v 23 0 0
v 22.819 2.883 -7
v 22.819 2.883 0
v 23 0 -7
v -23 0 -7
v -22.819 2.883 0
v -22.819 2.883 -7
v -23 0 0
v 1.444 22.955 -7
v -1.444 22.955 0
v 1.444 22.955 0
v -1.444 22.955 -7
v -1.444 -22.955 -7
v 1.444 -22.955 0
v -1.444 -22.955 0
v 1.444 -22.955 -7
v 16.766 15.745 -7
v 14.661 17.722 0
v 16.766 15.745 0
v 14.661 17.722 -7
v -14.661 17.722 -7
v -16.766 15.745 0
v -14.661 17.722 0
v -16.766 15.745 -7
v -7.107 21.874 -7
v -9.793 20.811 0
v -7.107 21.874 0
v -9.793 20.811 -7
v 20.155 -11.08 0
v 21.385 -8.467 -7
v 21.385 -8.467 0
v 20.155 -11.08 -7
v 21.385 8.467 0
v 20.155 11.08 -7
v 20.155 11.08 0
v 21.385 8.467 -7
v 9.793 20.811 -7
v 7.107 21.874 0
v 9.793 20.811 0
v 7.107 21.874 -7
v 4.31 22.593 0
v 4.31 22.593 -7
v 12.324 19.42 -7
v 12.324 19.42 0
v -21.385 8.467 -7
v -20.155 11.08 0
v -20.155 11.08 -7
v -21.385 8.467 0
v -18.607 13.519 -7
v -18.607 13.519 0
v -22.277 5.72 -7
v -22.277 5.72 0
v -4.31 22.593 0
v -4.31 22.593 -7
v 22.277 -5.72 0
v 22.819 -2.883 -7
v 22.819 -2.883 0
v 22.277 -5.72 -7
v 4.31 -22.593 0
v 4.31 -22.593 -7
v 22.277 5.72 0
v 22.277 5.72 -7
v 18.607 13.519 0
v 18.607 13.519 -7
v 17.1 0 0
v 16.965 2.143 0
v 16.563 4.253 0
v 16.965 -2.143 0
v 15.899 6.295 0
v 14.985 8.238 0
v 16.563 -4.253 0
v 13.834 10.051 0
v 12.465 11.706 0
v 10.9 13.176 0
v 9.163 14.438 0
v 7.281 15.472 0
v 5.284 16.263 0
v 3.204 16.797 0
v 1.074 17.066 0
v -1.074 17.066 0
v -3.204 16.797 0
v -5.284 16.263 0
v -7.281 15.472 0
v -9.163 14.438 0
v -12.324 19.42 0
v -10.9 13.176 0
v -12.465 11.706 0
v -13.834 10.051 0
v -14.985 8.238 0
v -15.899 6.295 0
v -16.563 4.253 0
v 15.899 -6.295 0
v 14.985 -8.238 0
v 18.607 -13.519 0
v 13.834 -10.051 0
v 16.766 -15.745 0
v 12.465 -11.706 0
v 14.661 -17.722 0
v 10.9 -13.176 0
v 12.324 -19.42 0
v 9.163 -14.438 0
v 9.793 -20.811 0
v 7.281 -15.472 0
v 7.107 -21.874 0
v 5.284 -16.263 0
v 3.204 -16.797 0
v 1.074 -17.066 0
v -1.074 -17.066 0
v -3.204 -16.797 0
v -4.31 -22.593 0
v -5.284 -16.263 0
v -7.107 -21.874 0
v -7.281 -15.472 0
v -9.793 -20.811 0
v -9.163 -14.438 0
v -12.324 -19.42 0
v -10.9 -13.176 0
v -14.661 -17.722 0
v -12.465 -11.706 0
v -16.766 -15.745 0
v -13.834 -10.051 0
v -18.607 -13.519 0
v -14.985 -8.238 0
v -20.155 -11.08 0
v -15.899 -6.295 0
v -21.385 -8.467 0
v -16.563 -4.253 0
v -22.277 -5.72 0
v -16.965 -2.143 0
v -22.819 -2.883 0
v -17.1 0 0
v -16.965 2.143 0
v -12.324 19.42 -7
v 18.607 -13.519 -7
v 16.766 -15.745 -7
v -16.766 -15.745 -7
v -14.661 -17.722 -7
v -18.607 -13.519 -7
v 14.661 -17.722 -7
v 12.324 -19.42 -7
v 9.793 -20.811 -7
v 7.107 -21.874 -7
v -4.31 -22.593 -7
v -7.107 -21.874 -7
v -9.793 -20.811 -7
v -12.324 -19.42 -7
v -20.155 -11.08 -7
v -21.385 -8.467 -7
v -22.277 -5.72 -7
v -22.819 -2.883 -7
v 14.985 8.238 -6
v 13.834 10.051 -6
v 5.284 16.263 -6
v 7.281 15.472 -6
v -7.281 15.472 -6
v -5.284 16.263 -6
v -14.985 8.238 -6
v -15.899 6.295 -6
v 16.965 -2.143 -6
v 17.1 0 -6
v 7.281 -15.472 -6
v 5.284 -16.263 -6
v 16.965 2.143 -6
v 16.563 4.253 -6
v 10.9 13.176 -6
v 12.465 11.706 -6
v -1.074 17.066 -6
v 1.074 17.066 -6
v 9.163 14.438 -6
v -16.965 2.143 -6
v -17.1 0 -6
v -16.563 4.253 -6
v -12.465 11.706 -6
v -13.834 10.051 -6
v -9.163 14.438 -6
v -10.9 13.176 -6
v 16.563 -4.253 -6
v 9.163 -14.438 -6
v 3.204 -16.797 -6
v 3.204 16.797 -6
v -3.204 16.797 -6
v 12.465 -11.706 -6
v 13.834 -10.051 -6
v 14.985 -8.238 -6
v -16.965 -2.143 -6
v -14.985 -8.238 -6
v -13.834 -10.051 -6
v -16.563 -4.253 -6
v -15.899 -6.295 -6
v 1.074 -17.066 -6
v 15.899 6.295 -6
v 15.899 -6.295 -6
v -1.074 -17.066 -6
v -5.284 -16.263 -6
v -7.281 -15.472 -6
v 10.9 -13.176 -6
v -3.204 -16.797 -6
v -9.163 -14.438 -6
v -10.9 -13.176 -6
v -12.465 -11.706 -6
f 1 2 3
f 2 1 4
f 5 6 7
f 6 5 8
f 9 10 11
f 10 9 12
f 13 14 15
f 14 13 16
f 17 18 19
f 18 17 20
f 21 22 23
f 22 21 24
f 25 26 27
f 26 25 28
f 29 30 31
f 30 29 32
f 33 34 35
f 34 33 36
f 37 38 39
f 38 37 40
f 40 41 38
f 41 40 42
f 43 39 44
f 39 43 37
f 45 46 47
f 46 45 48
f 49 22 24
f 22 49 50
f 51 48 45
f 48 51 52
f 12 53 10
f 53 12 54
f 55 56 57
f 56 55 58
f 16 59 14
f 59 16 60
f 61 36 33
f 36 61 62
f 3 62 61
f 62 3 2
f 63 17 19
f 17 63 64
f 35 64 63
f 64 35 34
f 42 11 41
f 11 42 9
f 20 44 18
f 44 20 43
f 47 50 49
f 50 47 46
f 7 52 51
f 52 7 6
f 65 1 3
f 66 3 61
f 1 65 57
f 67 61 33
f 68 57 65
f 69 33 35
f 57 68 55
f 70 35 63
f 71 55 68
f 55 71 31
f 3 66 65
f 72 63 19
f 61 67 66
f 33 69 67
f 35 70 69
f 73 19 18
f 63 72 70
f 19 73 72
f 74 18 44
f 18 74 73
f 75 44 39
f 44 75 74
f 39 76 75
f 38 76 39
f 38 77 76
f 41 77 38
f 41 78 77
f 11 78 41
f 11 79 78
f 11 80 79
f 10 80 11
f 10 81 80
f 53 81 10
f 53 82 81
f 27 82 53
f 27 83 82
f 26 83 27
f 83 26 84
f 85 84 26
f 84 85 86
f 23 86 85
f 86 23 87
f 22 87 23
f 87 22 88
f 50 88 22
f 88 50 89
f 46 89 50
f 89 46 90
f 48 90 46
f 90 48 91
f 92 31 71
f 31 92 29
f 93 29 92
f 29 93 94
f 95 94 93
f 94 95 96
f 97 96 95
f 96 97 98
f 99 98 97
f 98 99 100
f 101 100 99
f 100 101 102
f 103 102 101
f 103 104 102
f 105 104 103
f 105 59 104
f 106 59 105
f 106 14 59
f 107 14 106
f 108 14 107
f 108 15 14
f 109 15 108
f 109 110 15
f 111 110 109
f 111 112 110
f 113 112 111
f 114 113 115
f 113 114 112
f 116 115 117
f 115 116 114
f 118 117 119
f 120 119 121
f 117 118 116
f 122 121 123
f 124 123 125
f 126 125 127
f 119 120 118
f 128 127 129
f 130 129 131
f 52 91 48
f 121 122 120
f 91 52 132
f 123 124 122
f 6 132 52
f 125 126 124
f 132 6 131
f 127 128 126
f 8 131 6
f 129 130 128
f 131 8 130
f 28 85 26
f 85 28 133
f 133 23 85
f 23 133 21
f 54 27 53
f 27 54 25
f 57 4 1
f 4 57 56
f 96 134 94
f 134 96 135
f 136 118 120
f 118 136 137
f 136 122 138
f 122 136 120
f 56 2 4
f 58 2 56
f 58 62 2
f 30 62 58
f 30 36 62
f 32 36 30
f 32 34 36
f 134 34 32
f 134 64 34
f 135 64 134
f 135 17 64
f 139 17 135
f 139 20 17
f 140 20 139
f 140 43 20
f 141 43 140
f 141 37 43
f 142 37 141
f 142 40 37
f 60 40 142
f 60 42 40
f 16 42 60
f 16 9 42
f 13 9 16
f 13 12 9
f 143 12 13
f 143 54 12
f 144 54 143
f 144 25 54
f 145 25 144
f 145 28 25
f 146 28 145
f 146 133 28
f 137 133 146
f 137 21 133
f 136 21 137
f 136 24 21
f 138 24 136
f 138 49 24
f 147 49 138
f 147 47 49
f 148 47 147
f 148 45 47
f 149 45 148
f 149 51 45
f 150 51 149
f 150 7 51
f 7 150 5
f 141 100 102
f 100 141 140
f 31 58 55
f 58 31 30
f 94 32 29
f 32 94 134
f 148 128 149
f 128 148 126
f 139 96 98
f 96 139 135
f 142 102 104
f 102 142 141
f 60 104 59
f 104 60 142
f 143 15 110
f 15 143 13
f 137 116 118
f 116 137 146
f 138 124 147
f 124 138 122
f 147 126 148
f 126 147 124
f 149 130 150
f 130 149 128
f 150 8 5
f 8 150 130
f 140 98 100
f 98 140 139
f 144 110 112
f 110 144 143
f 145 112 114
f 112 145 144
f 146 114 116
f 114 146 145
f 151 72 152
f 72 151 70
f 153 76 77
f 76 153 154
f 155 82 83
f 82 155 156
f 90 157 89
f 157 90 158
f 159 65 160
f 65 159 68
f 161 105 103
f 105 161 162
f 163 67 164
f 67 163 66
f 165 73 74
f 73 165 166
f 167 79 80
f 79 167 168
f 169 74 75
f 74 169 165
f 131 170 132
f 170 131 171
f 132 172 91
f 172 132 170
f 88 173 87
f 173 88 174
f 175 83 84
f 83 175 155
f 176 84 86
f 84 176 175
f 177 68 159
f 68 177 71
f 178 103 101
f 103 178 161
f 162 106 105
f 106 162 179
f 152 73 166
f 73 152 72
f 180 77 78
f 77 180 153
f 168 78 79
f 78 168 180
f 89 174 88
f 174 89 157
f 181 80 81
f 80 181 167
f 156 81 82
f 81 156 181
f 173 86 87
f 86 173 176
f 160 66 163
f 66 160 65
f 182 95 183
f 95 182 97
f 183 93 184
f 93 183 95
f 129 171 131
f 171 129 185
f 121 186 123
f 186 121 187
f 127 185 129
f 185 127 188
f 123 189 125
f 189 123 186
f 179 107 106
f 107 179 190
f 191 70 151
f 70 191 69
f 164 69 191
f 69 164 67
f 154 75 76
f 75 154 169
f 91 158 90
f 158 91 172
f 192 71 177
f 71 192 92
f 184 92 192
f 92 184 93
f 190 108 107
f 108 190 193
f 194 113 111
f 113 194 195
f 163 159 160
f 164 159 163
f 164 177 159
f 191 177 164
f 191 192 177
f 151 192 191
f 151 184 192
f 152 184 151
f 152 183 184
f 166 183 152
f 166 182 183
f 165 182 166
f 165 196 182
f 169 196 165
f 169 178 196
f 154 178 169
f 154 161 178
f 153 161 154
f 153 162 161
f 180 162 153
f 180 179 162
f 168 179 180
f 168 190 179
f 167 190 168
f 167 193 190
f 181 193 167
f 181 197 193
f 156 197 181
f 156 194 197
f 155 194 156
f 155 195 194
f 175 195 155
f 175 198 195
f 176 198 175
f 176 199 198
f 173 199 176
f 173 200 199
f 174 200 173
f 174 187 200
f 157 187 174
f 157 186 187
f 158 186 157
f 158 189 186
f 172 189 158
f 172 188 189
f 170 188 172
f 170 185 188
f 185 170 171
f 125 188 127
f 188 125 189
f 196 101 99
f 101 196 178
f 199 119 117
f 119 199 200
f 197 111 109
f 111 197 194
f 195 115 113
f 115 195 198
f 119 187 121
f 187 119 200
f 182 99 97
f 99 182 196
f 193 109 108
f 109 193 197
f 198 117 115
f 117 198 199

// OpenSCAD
$fn = 50;


difference() {
	union() {
		translate(v = [0, 0, -7.0000000000]) {
			cylinder(h = 7, r = 23.0000000000);
		}
	}
	union() {
		#translate(v = [0, 0, -6.0000000000]) {
			cylinder(h = 6, r = 17.1000000000);
		}
	}
}
